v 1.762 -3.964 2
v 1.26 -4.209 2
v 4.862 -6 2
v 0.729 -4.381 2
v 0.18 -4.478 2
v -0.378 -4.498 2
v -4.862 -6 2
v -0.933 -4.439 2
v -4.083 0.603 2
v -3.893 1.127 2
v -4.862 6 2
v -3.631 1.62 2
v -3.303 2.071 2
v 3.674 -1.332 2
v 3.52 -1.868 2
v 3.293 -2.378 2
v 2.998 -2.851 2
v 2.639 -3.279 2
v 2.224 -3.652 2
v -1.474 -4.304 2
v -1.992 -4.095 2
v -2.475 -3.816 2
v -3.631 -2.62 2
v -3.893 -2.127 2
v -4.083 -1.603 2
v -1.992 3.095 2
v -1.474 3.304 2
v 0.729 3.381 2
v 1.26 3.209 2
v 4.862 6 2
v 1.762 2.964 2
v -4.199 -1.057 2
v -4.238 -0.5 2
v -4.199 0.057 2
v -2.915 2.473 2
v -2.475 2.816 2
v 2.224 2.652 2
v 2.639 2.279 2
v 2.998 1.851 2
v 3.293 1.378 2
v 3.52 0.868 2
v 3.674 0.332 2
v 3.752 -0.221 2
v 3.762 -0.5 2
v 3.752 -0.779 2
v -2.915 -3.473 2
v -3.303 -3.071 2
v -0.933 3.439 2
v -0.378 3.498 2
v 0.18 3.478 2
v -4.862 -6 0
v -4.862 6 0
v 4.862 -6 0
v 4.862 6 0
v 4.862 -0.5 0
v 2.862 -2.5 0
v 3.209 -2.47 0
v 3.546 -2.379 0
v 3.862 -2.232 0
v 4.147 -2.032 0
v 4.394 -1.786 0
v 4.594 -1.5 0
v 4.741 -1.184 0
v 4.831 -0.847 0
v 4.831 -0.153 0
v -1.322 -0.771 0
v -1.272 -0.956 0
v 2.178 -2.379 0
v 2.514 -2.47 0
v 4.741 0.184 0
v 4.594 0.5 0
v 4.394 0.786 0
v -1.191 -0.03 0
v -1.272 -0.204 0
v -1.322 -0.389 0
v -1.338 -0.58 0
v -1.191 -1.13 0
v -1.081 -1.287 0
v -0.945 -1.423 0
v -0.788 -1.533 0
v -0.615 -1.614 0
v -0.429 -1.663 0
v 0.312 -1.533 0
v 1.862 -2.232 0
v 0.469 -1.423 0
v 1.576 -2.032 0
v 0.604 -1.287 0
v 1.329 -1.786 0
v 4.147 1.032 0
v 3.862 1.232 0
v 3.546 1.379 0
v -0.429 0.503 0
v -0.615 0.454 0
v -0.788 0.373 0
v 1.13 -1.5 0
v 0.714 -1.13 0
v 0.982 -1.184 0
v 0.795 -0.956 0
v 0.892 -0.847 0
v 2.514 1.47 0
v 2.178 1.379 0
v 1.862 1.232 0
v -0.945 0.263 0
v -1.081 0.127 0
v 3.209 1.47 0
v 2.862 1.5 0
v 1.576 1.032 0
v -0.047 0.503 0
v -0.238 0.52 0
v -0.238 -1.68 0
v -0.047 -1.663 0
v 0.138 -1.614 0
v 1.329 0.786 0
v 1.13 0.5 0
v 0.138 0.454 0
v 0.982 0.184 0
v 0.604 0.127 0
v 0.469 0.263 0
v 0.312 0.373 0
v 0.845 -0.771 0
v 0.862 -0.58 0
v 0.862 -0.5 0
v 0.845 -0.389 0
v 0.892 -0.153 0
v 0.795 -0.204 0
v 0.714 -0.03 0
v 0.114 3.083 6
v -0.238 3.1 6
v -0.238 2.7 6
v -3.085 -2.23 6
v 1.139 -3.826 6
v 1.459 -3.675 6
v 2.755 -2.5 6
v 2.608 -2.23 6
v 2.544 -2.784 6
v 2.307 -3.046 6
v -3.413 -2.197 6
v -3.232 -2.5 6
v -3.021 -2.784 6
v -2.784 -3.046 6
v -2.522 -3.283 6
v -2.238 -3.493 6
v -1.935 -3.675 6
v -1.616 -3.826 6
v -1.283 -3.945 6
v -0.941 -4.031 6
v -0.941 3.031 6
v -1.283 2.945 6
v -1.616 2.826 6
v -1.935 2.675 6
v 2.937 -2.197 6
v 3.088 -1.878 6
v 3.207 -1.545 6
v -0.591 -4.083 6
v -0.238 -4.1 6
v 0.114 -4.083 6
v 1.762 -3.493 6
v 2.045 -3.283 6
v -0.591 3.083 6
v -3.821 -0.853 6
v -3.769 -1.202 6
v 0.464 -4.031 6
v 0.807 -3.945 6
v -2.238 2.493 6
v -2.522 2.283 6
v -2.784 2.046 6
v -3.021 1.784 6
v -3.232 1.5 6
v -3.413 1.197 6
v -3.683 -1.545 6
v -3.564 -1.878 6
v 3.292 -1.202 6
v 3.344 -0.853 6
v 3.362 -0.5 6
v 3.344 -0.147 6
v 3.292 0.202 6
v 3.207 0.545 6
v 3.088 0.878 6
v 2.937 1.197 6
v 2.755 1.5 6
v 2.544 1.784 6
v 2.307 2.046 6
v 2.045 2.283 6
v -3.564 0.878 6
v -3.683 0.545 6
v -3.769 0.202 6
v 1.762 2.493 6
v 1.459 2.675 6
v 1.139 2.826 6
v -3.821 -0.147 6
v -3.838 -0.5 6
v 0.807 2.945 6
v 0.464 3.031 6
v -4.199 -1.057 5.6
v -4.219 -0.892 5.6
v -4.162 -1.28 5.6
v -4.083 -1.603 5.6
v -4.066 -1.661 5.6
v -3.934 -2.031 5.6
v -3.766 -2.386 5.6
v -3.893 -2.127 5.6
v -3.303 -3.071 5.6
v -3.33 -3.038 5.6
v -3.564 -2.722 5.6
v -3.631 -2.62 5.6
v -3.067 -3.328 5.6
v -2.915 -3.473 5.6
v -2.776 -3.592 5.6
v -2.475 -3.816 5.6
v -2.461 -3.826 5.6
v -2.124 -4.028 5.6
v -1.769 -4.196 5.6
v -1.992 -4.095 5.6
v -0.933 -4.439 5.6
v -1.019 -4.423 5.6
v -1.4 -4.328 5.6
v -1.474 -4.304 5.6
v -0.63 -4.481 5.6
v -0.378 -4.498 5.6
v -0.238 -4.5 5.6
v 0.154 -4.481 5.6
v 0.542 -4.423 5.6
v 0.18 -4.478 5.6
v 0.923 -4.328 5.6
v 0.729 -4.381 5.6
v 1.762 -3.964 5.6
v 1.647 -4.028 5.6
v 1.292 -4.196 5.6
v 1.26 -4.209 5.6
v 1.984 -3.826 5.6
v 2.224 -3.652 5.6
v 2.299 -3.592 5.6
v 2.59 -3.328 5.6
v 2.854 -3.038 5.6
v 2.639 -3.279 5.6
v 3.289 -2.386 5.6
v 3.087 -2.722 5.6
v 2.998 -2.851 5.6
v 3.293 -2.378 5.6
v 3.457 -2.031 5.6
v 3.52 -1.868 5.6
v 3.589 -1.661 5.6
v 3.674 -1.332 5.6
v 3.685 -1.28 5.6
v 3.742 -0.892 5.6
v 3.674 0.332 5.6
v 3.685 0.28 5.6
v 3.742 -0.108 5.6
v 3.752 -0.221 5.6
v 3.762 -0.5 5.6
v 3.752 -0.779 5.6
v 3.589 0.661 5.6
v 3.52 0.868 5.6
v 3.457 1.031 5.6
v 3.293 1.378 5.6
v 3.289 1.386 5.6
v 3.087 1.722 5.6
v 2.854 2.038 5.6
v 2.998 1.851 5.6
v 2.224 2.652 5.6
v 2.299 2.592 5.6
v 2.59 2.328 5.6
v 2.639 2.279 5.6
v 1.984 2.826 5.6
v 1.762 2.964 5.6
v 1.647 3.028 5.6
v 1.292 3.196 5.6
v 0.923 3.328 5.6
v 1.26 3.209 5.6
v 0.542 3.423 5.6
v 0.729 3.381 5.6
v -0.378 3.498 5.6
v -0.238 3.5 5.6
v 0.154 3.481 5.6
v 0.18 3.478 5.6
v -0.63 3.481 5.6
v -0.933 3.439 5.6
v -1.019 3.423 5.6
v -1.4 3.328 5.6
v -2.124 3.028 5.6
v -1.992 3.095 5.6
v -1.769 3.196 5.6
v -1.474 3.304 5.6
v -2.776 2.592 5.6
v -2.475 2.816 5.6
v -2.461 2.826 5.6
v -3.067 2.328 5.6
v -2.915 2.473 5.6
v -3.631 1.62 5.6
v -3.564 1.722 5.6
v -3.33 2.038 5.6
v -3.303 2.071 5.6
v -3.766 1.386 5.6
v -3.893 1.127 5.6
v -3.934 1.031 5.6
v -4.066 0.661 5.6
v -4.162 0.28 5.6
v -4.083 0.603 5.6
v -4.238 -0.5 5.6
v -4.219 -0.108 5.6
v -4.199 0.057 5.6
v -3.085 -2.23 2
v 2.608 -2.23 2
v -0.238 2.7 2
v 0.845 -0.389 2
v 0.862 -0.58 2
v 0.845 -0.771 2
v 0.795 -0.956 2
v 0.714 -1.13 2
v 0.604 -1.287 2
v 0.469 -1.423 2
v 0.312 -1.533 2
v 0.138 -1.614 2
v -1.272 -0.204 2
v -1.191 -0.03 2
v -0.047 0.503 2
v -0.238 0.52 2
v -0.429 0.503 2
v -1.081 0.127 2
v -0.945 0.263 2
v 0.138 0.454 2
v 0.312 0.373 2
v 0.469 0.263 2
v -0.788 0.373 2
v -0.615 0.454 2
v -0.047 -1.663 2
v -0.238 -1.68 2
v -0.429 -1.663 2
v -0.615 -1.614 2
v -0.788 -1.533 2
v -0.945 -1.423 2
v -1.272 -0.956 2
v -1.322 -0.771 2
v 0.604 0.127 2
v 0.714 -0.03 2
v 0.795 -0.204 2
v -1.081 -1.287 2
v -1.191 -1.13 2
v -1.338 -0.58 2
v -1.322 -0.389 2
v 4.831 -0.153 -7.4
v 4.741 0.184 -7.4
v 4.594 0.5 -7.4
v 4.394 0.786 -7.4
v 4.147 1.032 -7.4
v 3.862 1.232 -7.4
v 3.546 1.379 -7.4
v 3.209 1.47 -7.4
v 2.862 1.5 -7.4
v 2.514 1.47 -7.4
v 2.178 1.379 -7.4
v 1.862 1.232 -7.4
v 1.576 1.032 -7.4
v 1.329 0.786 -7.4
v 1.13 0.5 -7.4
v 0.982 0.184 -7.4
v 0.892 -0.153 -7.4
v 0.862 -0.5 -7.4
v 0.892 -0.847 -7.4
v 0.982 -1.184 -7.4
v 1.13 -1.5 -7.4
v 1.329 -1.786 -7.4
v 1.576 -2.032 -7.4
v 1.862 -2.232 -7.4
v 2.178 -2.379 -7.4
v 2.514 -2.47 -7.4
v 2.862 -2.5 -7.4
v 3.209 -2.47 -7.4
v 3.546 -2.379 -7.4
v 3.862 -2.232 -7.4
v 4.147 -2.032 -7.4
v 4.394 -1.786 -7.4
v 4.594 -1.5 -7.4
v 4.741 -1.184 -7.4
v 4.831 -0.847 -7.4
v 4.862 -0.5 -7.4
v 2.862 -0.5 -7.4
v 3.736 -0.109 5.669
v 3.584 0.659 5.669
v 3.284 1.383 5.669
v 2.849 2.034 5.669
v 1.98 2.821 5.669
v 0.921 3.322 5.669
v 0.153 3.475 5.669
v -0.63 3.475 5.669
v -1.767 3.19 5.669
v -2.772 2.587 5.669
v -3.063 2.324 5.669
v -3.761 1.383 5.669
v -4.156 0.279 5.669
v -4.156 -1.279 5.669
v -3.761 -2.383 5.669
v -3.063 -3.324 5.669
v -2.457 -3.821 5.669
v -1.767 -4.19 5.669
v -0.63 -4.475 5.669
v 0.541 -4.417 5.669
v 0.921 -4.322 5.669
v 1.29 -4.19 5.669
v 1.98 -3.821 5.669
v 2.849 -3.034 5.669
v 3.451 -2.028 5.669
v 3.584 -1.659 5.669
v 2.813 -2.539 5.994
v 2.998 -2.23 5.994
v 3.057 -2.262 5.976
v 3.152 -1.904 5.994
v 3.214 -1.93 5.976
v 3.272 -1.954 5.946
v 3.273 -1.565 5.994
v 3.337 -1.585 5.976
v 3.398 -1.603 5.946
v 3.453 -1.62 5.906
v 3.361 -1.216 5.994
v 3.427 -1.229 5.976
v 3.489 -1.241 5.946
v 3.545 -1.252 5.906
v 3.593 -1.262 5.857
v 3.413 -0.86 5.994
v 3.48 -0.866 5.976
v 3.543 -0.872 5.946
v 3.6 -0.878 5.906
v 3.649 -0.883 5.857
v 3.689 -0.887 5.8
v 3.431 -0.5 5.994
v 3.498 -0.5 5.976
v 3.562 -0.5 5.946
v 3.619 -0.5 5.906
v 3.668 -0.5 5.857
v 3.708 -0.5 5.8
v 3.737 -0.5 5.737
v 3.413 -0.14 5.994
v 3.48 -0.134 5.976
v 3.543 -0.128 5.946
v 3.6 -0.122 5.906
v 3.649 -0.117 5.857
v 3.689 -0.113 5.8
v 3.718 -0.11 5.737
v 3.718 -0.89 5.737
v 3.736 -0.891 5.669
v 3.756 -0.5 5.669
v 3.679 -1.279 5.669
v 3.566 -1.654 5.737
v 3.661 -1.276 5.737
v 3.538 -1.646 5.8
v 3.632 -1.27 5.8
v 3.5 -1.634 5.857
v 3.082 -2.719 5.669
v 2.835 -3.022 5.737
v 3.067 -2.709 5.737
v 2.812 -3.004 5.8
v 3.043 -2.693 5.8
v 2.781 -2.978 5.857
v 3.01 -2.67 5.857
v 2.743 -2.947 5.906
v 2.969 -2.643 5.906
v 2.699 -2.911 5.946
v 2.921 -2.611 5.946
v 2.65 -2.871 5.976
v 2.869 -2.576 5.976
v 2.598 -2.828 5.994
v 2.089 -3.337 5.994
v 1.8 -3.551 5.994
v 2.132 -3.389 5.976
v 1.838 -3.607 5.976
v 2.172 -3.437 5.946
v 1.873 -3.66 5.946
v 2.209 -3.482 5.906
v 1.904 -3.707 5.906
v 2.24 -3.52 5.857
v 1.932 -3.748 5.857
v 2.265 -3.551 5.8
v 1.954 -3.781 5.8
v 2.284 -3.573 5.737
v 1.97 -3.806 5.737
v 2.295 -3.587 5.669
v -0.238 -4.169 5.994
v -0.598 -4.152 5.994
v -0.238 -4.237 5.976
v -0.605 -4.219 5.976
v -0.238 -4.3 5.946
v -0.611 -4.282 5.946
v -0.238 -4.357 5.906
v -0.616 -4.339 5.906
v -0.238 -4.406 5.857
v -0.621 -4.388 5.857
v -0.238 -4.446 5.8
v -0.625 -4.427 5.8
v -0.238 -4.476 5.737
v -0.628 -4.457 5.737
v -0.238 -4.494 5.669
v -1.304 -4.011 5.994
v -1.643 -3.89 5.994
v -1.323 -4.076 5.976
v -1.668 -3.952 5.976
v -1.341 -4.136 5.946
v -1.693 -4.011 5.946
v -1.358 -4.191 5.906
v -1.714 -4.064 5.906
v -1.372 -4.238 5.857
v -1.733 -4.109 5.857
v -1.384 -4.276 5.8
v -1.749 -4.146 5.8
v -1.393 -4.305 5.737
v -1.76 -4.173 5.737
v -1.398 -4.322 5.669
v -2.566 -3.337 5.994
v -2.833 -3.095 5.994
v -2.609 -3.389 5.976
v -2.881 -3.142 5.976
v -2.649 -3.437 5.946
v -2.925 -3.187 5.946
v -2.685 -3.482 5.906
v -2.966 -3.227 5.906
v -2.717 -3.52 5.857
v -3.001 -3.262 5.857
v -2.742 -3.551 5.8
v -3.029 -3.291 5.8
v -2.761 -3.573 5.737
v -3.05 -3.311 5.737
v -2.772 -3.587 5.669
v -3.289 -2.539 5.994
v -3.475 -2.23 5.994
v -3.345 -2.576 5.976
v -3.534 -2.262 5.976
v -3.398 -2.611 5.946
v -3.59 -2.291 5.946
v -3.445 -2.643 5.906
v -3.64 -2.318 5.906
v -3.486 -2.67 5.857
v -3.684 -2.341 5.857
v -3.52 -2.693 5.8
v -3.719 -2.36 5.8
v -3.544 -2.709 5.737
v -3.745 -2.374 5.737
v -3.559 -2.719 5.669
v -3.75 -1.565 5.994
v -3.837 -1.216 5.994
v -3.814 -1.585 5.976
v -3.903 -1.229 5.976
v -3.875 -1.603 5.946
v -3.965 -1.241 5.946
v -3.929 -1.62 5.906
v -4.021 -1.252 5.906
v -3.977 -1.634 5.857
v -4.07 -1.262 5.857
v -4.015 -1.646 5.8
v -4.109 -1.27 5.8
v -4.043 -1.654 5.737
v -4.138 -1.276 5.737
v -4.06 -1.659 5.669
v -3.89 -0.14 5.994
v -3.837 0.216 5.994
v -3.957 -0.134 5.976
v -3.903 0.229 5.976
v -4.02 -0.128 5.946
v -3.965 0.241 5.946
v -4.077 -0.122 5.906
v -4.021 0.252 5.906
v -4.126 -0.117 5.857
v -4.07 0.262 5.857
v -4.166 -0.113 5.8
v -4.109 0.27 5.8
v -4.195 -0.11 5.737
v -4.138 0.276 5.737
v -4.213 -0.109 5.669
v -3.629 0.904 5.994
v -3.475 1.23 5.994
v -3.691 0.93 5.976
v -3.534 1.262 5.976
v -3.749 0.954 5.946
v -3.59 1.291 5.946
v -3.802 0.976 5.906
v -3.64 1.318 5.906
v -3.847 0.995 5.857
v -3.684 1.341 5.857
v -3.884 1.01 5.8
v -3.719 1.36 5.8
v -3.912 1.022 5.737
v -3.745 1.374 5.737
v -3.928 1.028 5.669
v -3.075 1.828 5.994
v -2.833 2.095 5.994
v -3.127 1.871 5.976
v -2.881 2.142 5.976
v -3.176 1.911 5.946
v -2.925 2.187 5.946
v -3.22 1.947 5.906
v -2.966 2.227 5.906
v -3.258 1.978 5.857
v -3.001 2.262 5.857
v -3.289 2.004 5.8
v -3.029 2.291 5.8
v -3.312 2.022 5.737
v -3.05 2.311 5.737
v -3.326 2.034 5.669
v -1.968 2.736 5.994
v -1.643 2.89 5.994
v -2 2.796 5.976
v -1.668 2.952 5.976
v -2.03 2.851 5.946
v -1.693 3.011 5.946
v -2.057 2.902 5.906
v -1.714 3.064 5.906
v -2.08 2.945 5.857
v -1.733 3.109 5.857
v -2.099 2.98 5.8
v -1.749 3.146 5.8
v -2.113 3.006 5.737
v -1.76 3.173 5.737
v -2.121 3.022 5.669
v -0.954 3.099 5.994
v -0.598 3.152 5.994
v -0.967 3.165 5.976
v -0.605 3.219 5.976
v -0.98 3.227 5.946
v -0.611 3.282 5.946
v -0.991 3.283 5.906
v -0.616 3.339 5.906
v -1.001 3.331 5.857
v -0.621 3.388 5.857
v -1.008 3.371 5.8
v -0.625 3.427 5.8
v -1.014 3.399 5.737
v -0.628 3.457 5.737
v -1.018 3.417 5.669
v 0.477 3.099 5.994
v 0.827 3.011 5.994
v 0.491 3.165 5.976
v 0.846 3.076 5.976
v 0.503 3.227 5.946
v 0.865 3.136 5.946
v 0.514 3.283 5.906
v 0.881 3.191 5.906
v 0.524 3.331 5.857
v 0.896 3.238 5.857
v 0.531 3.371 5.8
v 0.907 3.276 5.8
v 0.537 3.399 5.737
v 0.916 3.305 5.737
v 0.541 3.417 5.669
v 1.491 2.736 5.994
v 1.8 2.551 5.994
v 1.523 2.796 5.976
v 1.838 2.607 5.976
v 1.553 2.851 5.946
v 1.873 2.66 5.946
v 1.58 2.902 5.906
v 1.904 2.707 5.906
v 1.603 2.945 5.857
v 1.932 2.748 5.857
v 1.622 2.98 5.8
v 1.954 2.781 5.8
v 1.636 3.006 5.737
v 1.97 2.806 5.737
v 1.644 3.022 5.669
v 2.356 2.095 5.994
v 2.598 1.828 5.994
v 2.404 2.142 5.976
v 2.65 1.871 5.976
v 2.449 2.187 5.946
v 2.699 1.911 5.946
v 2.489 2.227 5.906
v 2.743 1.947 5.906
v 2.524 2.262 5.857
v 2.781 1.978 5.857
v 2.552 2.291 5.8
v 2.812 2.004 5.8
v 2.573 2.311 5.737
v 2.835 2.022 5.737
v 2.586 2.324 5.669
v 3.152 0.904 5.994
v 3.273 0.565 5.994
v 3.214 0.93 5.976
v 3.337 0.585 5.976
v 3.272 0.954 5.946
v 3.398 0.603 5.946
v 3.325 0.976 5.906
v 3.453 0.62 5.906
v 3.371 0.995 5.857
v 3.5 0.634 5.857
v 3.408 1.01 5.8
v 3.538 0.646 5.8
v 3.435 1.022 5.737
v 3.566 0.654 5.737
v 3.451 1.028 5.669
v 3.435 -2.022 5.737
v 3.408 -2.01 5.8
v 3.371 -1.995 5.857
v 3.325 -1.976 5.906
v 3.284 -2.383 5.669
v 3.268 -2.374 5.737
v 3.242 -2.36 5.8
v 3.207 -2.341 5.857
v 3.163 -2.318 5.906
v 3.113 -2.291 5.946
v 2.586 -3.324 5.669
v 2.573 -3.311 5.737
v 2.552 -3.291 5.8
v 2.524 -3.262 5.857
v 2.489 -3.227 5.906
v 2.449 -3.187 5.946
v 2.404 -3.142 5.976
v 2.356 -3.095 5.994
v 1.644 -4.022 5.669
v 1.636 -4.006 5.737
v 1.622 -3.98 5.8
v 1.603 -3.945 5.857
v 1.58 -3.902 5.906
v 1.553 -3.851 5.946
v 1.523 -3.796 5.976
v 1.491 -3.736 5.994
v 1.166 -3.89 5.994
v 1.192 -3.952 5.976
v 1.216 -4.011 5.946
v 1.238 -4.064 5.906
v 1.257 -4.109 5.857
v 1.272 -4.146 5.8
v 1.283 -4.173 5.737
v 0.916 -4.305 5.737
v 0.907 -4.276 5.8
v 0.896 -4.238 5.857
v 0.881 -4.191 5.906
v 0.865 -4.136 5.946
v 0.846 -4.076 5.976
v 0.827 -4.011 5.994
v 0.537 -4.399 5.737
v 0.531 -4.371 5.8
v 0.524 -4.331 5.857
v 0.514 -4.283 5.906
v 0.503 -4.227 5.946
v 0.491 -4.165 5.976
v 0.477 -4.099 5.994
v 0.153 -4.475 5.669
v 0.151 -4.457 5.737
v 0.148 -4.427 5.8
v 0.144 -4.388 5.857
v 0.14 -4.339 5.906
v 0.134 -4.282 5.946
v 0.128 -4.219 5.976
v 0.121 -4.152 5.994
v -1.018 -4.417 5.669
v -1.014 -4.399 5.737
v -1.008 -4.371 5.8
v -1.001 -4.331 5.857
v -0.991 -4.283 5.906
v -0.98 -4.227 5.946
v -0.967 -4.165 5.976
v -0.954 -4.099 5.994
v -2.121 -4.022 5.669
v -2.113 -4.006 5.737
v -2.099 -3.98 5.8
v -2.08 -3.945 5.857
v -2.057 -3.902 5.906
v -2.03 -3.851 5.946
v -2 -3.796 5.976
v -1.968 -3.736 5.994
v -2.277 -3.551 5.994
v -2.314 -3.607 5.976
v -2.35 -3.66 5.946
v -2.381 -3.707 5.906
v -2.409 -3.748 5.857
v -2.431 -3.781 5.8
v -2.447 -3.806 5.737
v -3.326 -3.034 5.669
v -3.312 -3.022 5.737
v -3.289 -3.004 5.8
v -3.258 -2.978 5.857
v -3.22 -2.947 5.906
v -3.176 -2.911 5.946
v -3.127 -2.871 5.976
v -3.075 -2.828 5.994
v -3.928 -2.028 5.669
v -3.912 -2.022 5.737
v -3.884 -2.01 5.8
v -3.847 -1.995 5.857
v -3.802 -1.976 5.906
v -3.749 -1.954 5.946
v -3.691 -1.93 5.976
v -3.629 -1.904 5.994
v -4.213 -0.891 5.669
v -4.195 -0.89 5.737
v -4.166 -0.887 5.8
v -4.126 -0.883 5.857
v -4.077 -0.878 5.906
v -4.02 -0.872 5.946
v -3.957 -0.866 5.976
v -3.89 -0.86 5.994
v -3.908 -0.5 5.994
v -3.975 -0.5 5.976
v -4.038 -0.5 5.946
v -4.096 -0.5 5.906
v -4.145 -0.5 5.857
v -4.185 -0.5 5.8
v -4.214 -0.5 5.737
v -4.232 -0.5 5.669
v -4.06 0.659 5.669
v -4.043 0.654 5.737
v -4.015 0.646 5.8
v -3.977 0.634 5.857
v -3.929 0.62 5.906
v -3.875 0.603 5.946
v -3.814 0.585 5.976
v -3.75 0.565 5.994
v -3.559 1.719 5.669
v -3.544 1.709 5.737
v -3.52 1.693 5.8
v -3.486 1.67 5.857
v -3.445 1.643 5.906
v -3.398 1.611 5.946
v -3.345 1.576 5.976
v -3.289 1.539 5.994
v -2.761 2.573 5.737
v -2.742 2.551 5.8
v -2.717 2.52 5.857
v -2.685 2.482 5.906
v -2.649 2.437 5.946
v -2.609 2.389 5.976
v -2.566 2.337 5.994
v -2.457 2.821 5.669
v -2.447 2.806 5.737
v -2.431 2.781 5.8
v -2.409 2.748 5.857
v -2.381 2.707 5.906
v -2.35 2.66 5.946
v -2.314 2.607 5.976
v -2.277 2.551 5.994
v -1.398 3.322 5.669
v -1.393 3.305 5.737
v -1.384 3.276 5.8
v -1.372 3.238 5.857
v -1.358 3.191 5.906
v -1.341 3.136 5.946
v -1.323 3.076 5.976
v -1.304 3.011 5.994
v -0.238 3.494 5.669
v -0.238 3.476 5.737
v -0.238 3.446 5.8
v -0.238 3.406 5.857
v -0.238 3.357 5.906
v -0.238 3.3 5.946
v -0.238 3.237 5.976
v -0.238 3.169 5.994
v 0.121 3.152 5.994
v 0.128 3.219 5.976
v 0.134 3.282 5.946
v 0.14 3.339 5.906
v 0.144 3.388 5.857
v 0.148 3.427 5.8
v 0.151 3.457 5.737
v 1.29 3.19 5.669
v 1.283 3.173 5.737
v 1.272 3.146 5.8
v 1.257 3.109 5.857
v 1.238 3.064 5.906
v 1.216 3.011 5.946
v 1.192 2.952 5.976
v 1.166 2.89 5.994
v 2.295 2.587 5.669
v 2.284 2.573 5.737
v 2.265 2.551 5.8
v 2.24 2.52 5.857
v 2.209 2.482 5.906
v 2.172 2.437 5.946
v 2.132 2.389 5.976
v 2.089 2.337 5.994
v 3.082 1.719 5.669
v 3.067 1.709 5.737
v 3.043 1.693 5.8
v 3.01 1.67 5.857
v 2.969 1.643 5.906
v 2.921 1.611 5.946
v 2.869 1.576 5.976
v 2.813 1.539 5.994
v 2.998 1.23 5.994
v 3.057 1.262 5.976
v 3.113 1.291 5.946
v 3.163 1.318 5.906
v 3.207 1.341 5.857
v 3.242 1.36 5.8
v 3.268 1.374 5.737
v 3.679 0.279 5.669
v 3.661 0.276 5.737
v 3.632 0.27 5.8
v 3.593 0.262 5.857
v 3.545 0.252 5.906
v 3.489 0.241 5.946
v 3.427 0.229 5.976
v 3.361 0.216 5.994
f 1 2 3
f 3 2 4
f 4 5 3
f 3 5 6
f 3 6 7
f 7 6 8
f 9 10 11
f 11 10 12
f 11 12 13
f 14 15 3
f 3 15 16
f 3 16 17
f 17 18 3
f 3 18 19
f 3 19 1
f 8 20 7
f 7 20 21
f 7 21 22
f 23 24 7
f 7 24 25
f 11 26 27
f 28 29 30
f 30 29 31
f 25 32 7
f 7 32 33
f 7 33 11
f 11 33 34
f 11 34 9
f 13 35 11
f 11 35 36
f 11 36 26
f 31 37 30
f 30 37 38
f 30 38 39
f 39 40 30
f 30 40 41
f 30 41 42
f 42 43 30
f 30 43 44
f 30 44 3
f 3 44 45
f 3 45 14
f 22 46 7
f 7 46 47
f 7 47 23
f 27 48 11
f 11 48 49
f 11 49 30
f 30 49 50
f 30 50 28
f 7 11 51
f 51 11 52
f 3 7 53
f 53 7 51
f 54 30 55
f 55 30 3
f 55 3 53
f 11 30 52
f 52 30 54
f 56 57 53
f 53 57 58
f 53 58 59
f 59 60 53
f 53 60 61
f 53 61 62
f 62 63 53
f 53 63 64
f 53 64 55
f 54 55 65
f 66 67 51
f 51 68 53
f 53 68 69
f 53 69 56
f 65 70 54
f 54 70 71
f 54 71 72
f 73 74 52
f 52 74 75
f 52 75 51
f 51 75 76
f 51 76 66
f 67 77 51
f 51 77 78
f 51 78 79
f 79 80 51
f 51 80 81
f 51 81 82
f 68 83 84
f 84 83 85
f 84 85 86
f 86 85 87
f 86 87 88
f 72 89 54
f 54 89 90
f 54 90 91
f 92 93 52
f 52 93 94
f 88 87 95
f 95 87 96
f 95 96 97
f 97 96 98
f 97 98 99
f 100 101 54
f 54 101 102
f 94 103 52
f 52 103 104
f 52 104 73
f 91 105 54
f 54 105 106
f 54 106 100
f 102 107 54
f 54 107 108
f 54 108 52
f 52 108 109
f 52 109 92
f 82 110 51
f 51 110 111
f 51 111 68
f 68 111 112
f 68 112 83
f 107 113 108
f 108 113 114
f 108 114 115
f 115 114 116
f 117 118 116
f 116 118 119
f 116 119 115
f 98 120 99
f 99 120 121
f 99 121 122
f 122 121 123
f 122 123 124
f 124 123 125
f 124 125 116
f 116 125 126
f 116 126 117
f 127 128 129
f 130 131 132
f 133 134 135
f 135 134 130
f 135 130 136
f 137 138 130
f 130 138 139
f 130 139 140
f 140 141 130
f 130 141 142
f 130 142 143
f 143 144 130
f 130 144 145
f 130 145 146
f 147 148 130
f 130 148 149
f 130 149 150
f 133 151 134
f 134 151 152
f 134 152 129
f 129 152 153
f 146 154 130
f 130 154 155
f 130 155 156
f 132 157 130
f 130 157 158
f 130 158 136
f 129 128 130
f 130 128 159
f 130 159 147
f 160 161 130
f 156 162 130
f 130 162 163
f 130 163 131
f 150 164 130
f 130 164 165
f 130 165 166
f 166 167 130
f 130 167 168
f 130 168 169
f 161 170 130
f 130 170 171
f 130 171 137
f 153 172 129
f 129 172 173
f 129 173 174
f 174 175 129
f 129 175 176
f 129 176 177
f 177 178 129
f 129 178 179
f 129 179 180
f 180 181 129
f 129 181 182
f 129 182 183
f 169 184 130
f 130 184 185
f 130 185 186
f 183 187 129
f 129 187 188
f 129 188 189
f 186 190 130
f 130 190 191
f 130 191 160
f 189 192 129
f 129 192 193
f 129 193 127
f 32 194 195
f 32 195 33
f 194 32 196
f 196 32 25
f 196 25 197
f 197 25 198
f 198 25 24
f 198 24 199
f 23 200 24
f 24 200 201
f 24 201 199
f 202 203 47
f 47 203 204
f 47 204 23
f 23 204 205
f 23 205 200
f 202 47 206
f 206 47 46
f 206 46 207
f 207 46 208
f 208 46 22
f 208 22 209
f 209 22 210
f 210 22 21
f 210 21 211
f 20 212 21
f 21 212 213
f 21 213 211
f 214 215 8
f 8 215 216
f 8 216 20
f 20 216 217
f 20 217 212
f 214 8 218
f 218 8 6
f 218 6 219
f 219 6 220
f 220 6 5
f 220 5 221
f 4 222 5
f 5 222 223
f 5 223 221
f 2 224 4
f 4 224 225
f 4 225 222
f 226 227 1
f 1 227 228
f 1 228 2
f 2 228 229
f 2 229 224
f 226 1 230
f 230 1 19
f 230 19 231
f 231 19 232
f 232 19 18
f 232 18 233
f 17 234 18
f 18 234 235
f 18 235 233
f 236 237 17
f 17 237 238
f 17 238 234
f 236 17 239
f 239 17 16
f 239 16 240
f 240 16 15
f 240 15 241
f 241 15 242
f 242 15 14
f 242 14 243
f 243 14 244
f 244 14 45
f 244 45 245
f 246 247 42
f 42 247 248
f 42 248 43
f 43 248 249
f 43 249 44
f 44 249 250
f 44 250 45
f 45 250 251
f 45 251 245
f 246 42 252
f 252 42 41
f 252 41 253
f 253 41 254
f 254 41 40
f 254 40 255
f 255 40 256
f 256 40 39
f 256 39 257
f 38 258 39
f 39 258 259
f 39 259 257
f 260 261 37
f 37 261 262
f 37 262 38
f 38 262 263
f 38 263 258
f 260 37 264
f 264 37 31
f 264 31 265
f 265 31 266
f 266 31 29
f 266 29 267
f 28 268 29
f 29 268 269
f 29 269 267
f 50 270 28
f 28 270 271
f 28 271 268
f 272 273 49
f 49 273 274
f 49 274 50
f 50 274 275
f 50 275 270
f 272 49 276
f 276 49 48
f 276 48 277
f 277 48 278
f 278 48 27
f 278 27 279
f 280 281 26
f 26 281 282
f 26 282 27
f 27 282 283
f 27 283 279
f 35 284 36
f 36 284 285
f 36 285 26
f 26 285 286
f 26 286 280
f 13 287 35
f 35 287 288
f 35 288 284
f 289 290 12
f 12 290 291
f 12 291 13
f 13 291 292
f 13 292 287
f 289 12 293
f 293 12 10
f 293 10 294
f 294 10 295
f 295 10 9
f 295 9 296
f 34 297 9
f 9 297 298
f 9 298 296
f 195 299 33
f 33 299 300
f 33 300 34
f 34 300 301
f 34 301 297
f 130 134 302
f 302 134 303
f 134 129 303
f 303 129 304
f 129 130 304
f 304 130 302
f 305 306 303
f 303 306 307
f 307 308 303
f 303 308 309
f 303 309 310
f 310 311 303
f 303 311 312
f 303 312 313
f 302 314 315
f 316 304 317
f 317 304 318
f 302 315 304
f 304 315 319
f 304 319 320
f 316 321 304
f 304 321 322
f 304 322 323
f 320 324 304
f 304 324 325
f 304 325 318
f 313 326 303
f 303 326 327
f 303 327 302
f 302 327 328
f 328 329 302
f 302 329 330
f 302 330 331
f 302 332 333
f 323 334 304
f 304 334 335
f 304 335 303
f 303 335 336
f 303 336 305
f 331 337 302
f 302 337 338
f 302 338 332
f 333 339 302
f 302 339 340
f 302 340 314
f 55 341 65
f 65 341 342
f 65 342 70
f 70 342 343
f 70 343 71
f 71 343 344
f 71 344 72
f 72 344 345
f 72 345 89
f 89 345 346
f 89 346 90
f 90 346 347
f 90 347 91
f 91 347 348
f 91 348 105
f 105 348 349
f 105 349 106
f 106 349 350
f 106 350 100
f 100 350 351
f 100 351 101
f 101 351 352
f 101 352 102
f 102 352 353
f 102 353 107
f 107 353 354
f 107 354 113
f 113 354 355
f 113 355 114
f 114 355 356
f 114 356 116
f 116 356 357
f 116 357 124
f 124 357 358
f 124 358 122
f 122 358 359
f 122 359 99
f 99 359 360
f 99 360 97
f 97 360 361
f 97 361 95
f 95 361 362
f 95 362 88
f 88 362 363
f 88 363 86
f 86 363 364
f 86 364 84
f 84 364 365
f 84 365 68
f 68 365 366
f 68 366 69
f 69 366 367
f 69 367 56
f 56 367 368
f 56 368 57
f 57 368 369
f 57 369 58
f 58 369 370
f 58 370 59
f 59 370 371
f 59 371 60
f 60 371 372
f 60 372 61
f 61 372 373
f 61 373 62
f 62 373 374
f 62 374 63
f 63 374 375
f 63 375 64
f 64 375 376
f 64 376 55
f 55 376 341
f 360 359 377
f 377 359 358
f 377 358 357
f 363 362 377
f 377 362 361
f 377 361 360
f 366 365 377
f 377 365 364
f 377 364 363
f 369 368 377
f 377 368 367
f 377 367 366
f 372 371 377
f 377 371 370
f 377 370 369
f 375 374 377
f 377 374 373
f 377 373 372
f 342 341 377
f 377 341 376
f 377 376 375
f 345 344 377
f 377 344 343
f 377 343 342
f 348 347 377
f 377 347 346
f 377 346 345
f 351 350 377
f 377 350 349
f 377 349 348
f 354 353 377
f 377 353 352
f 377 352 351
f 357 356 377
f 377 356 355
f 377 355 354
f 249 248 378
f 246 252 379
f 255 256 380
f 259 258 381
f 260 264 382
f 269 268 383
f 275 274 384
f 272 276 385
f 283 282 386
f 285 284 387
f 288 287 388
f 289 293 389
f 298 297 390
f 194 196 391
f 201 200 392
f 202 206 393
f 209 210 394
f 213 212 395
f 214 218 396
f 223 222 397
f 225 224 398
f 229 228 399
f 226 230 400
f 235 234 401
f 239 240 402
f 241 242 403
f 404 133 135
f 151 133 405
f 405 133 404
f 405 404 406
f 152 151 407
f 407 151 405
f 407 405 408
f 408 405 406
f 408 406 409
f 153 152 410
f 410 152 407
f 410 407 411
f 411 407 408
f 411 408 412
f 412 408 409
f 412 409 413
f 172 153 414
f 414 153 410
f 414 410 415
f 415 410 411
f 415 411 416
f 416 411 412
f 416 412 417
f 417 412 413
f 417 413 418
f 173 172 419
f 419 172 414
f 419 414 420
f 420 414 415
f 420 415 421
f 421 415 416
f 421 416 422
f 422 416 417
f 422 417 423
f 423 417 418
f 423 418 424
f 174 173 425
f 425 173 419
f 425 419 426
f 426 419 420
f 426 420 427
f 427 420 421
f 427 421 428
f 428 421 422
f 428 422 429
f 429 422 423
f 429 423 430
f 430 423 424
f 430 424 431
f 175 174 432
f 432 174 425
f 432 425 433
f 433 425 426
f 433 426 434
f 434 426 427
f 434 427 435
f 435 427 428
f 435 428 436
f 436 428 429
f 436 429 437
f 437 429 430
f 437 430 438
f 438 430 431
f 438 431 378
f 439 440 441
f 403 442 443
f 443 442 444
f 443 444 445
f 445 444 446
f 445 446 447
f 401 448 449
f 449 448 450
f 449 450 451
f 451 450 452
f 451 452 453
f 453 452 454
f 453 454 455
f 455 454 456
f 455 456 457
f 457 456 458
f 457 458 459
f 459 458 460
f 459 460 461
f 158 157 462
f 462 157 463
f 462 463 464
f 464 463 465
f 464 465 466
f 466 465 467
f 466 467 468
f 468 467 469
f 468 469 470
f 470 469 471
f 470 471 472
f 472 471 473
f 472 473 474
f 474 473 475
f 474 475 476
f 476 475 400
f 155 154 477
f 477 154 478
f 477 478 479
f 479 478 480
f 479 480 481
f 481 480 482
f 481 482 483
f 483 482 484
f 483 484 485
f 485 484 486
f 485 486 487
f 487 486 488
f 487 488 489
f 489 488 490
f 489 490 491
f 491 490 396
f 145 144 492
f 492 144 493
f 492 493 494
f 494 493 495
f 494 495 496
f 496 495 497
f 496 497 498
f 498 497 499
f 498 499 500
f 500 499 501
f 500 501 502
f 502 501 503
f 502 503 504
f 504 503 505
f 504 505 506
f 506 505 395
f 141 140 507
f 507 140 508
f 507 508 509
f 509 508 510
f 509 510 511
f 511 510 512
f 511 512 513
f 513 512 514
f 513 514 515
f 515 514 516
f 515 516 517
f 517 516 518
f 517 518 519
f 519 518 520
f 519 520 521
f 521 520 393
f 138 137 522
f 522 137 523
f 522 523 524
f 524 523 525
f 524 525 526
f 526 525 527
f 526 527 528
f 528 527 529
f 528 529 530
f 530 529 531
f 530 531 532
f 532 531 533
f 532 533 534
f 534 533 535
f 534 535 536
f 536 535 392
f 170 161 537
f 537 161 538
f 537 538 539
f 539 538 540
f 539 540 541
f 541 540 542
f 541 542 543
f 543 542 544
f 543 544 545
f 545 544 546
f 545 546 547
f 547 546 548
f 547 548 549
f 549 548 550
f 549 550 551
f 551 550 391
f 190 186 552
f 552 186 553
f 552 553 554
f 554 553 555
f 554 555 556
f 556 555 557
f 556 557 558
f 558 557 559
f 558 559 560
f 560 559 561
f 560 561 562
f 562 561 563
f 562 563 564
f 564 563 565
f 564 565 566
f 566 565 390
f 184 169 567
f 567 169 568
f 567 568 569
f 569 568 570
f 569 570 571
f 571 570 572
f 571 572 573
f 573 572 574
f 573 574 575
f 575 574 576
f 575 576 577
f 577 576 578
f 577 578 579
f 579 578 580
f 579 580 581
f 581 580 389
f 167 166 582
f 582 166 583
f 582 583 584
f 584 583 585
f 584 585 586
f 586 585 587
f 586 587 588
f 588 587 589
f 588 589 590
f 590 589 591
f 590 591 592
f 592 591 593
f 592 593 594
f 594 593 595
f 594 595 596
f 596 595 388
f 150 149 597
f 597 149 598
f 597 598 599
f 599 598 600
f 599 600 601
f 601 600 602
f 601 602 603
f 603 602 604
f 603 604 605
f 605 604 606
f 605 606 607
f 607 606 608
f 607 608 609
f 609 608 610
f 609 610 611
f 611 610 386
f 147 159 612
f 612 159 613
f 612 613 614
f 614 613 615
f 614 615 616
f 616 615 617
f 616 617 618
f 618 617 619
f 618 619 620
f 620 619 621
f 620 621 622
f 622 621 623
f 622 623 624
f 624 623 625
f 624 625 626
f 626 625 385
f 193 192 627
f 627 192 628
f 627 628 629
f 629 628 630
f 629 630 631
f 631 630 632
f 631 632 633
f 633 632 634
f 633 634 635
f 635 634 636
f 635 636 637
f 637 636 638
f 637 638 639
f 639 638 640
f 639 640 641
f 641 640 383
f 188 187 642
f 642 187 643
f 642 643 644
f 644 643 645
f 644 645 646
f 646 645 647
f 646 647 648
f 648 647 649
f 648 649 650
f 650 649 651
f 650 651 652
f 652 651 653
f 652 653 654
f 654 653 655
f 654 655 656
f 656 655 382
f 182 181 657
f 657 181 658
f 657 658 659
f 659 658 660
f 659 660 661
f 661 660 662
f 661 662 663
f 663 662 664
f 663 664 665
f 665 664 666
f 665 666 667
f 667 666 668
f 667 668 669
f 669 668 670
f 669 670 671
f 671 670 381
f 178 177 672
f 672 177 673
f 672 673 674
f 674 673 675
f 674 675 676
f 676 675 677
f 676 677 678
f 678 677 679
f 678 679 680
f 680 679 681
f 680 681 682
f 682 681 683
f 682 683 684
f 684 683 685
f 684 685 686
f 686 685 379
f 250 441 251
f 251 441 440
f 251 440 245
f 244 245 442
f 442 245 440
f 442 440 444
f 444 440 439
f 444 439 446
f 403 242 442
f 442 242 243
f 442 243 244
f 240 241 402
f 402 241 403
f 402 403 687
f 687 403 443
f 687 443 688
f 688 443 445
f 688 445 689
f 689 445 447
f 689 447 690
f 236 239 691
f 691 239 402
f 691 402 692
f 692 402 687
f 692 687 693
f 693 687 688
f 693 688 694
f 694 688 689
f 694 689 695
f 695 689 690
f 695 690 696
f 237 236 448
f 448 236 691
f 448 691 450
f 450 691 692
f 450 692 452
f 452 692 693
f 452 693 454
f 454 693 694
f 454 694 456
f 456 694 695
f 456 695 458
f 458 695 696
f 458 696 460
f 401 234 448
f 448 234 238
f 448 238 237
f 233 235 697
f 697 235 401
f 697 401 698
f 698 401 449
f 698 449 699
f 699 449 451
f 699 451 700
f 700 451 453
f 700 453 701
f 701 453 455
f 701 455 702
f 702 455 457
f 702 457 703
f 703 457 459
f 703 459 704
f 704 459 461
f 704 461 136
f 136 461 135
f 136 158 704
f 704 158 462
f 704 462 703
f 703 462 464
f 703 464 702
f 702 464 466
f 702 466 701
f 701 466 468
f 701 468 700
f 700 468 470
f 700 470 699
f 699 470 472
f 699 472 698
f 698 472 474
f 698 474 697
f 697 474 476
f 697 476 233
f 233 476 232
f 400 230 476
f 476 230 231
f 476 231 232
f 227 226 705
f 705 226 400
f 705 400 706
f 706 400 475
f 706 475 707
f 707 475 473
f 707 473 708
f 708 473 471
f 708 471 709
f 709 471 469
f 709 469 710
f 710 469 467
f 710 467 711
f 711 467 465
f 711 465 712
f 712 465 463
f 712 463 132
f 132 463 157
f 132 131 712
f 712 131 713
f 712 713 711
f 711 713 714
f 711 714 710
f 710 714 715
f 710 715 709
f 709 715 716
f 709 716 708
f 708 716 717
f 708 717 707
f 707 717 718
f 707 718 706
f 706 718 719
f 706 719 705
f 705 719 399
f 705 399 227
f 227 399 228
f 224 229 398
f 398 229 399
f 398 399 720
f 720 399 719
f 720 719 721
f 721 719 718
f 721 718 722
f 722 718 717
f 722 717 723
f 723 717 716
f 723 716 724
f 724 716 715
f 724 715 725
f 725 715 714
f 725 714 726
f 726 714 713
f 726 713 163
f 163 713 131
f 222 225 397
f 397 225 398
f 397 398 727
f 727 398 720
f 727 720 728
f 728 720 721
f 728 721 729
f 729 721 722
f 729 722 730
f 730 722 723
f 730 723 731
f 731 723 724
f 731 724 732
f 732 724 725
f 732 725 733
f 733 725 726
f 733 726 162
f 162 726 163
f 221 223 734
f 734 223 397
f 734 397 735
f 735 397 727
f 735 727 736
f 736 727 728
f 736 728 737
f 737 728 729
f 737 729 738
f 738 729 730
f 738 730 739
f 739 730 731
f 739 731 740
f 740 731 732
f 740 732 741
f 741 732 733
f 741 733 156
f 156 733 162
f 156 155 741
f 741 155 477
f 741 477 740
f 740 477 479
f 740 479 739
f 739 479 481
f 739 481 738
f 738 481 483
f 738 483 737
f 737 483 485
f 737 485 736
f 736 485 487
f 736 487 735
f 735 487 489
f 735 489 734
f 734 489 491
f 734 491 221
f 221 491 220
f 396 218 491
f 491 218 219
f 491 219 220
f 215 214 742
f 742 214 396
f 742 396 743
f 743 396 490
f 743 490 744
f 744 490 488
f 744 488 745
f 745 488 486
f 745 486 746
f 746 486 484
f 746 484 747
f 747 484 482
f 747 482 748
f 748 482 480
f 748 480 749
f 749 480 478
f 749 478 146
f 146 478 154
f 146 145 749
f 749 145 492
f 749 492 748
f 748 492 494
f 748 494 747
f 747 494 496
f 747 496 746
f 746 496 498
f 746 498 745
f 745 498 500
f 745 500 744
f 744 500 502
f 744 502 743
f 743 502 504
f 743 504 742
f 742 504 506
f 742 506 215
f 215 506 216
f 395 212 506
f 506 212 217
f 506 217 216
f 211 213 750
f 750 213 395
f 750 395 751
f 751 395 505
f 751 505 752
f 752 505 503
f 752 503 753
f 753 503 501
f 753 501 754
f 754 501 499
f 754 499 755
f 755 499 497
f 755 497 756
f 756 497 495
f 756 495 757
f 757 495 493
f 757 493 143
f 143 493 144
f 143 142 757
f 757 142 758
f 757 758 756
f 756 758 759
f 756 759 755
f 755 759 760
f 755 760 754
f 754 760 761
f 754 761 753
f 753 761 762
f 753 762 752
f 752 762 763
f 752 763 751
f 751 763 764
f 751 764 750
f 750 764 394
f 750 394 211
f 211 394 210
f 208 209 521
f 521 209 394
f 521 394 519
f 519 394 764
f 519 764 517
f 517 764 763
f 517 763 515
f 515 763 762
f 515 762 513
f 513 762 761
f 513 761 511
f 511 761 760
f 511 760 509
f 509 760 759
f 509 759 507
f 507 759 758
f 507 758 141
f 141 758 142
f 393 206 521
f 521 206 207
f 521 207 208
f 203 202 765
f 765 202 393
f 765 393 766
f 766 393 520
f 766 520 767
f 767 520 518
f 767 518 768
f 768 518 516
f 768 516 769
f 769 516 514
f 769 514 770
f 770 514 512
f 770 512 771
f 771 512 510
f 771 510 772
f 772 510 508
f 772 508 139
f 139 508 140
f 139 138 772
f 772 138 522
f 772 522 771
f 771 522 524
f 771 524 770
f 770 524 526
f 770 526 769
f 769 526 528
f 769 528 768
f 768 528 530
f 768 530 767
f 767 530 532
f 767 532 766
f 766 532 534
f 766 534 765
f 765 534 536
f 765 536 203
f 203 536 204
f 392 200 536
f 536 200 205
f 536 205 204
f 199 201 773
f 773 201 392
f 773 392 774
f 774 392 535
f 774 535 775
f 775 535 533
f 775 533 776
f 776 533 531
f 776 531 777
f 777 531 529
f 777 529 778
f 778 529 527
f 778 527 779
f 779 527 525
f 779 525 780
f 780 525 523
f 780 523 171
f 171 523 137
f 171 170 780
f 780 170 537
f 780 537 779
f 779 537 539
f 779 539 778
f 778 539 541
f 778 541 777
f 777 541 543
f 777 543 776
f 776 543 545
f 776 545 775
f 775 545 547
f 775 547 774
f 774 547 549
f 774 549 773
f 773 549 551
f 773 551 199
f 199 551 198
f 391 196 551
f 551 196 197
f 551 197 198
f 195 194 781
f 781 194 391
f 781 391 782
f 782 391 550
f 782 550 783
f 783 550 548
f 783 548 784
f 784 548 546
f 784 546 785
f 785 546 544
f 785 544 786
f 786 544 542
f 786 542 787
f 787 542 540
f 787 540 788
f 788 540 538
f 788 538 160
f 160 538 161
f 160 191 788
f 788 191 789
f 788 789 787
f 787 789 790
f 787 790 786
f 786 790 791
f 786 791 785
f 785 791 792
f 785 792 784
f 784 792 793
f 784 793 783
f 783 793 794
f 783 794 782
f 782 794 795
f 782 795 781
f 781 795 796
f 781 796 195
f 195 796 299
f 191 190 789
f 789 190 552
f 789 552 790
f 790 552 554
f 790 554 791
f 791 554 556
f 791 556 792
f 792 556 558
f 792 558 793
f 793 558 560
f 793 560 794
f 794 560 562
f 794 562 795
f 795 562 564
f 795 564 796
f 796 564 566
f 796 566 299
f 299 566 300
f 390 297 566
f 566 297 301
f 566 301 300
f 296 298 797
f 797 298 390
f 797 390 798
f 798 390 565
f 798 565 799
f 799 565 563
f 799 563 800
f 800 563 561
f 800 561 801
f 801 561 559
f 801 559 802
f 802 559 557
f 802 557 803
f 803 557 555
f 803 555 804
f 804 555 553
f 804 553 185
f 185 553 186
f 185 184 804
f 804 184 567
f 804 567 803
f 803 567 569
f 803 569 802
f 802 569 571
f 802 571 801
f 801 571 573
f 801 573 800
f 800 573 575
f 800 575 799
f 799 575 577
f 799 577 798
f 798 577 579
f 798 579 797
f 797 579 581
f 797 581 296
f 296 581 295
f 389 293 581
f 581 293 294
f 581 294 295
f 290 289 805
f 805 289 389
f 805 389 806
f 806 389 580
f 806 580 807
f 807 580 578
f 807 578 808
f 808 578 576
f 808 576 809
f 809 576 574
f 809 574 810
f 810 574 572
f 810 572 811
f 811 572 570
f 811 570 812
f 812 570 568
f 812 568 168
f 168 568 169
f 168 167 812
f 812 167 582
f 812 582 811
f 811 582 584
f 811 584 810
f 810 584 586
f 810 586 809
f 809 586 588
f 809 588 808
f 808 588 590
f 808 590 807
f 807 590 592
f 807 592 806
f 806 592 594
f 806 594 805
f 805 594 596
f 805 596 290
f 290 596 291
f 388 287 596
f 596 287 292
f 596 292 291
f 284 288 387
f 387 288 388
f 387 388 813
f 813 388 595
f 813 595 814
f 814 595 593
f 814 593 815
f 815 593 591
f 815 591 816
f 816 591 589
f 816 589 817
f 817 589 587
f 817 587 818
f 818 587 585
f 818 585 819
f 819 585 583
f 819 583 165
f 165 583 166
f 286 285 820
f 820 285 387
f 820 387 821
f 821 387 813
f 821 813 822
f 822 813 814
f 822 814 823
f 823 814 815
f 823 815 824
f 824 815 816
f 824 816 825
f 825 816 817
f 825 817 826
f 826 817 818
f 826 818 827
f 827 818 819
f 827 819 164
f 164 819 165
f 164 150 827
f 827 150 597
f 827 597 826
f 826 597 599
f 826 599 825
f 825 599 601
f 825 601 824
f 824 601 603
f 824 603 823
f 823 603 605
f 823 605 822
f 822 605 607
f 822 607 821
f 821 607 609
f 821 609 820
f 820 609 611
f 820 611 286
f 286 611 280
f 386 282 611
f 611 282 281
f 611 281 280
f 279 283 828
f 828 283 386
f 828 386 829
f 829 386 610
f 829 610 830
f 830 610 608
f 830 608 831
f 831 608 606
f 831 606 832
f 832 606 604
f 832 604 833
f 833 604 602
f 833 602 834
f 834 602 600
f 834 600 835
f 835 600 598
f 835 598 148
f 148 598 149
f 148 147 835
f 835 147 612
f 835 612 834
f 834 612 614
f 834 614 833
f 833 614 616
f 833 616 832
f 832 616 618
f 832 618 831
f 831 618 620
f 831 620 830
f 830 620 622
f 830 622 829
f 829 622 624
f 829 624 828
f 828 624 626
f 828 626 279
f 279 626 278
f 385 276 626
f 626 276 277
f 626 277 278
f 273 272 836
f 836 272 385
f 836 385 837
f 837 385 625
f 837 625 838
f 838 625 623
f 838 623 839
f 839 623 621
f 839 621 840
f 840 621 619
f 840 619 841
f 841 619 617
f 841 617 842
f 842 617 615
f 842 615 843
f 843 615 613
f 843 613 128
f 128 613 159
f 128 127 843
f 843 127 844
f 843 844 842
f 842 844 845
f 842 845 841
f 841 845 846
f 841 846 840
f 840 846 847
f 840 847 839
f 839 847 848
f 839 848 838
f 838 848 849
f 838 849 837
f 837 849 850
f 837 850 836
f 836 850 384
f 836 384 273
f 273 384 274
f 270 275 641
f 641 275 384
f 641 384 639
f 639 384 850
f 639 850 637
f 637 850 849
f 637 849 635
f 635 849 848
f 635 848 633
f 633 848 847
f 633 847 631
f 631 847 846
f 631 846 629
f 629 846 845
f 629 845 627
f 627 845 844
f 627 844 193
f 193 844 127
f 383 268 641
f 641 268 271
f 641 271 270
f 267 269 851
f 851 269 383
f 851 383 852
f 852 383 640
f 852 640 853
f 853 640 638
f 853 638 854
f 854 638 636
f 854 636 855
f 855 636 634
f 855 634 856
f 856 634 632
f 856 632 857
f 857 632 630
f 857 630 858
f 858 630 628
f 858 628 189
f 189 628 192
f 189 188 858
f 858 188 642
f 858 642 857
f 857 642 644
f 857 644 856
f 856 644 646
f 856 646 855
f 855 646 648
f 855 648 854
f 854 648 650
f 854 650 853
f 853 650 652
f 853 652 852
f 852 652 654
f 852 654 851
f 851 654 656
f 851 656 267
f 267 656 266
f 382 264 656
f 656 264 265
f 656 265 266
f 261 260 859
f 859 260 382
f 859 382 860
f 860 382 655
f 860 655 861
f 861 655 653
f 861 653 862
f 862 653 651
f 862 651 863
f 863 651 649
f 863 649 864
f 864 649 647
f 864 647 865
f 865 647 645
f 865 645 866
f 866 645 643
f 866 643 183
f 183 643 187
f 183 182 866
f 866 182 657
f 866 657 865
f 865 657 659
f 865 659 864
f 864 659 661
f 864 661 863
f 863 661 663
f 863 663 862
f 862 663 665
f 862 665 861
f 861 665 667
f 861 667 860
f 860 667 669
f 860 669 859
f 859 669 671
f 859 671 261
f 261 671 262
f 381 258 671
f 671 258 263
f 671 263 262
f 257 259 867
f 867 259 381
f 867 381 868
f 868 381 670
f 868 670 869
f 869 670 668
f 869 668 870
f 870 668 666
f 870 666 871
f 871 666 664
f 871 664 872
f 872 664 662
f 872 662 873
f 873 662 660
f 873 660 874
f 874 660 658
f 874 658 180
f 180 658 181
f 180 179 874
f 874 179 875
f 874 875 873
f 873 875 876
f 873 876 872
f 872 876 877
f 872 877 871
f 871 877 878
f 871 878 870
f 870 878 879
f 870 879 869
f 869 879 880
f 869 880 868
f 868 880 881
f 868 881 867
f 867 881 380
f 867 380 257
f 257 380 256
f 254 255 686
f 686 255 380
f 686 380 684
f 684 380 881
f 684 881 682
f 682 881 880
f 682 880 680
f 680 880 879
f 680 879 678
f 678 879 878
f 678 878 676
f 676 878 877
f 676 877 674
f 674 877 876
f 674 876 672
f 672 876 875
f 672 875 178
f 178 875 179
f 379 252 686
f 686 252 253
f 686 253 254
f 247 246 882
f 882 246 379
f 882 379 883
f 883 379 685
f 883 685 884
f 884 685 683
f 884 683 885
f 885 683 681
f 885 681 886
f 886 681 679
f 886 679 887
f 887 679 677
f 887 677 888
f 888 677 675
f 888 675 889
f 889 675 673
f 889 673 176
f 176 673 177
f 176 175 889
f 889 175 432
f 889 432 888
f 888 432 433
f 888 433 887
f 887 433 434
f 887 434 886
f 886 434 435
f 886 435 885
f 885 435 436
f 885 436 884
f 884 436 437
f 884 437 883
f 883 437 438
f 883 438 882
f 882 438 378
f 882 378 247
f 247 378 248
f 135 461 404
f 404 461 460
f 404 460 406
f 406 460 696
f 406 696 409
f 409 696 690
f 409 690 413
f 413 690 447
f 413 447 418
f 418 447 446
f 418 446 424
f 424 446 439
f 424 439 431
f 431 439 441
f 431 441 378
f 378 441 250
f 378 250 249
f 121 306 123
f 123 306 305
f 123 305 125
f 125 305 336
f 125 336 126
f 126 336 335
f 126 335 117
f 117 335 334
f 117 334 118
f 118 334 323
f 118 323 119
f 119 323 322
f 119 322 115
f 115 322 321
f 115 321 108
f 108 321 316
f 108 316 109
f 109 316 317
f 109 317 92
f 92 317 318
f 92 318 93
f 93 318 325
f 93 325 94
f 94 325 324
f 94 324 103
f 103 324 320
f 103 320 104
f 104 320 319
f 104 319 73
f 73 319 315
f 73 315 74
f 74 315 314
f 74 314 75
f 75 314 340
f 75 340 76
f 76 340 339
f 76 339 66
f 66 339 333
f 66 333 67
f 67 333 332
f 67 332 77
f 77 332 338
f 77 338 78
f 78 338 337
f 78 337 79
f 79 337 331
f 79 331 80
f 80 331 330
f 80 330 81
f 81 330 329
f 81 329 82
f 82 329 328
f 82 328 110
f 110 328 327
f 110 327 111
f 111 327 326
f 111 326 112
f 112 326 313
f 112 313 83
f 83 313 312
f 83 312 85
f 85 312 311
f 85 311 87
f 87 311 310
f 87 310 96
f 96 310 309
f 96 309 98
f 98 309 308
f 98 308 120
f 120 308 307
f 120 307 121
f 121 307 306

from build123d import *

# Parameters (mm, degrees)
SKETCH_2_W          = 9.723167254
SKETCH_2_H          = 12
EXTRUDE_1_DEPTH     = 2
SKETCH_3_R          = 4
EXTRUDE_2_DEPTH     = 4
SKETCH_4_R          = 2
EXTRUDE_3_DEPTH     = 7.4
FILLET_1_R          = 0.4
SKETCH_5_R          = 1.1
CUT_EXTRUDE_1_DEPTH = 2


with BuildPart() as part:
    # Эскиз2 → Бобышка-Вытянуть1 (new body)
    with BuildSketch(Plane.XY):
        Rectangle(SKETCH_2_W, SKETCH_2_H)
    extrude(amount=EXTRUDE_1_DEPTH)

    # Эскиз3 → Бобышка-Вытянуть2 (add)
    with BuildSketch(Plane.XY.offset(2)):
        with Locations((-0.238416373, -0.5)):
            Circle(SKETCH_3_R)
        Polygon((-3.084826535, -2.230127019), (-0.238416373, 2.7), (2.607993788, -2.230127019), align=None, mode=Mode.SUBTRACT)
    extrude(amount=EXTRUDE_2_DEPTH)

    # Эскиз4 → Бобышка-Вытянуть3 (add)
    with BuildSketch(Plane(origin=(0, 0, 0), x_dir=(-1, 0, 0), z_dir=(0, 0, -1))):
        with Locations(Location((-2.861583627, -0.5, 0), (0, 0, 180))):
            Circle(SKETCH_4_R)
    extrude(amount=EXTRUDE_3_DEPTH)

    # Скругление1
    fillet_1_edges = [part.edges().sort_by_distance(p)[0] for p in [
        (-4.238416373, -0.5, 6),
    ]]
    fillet(fillet_1_edges, radius=FILLET_1_R)

    # Эскиз5 → Вырез-Вытянуть1 (cut)
    with BuildSketch(Plane.XY.offset(2)):
        with Locations((-0.238416373, -0.58)):
            Circle(SKETCH_5_R)
    extrude(amount=-CUT_EXTRUDE_1_DEPTH, mode=Mode.SUBTRACT)


solid = part.part
